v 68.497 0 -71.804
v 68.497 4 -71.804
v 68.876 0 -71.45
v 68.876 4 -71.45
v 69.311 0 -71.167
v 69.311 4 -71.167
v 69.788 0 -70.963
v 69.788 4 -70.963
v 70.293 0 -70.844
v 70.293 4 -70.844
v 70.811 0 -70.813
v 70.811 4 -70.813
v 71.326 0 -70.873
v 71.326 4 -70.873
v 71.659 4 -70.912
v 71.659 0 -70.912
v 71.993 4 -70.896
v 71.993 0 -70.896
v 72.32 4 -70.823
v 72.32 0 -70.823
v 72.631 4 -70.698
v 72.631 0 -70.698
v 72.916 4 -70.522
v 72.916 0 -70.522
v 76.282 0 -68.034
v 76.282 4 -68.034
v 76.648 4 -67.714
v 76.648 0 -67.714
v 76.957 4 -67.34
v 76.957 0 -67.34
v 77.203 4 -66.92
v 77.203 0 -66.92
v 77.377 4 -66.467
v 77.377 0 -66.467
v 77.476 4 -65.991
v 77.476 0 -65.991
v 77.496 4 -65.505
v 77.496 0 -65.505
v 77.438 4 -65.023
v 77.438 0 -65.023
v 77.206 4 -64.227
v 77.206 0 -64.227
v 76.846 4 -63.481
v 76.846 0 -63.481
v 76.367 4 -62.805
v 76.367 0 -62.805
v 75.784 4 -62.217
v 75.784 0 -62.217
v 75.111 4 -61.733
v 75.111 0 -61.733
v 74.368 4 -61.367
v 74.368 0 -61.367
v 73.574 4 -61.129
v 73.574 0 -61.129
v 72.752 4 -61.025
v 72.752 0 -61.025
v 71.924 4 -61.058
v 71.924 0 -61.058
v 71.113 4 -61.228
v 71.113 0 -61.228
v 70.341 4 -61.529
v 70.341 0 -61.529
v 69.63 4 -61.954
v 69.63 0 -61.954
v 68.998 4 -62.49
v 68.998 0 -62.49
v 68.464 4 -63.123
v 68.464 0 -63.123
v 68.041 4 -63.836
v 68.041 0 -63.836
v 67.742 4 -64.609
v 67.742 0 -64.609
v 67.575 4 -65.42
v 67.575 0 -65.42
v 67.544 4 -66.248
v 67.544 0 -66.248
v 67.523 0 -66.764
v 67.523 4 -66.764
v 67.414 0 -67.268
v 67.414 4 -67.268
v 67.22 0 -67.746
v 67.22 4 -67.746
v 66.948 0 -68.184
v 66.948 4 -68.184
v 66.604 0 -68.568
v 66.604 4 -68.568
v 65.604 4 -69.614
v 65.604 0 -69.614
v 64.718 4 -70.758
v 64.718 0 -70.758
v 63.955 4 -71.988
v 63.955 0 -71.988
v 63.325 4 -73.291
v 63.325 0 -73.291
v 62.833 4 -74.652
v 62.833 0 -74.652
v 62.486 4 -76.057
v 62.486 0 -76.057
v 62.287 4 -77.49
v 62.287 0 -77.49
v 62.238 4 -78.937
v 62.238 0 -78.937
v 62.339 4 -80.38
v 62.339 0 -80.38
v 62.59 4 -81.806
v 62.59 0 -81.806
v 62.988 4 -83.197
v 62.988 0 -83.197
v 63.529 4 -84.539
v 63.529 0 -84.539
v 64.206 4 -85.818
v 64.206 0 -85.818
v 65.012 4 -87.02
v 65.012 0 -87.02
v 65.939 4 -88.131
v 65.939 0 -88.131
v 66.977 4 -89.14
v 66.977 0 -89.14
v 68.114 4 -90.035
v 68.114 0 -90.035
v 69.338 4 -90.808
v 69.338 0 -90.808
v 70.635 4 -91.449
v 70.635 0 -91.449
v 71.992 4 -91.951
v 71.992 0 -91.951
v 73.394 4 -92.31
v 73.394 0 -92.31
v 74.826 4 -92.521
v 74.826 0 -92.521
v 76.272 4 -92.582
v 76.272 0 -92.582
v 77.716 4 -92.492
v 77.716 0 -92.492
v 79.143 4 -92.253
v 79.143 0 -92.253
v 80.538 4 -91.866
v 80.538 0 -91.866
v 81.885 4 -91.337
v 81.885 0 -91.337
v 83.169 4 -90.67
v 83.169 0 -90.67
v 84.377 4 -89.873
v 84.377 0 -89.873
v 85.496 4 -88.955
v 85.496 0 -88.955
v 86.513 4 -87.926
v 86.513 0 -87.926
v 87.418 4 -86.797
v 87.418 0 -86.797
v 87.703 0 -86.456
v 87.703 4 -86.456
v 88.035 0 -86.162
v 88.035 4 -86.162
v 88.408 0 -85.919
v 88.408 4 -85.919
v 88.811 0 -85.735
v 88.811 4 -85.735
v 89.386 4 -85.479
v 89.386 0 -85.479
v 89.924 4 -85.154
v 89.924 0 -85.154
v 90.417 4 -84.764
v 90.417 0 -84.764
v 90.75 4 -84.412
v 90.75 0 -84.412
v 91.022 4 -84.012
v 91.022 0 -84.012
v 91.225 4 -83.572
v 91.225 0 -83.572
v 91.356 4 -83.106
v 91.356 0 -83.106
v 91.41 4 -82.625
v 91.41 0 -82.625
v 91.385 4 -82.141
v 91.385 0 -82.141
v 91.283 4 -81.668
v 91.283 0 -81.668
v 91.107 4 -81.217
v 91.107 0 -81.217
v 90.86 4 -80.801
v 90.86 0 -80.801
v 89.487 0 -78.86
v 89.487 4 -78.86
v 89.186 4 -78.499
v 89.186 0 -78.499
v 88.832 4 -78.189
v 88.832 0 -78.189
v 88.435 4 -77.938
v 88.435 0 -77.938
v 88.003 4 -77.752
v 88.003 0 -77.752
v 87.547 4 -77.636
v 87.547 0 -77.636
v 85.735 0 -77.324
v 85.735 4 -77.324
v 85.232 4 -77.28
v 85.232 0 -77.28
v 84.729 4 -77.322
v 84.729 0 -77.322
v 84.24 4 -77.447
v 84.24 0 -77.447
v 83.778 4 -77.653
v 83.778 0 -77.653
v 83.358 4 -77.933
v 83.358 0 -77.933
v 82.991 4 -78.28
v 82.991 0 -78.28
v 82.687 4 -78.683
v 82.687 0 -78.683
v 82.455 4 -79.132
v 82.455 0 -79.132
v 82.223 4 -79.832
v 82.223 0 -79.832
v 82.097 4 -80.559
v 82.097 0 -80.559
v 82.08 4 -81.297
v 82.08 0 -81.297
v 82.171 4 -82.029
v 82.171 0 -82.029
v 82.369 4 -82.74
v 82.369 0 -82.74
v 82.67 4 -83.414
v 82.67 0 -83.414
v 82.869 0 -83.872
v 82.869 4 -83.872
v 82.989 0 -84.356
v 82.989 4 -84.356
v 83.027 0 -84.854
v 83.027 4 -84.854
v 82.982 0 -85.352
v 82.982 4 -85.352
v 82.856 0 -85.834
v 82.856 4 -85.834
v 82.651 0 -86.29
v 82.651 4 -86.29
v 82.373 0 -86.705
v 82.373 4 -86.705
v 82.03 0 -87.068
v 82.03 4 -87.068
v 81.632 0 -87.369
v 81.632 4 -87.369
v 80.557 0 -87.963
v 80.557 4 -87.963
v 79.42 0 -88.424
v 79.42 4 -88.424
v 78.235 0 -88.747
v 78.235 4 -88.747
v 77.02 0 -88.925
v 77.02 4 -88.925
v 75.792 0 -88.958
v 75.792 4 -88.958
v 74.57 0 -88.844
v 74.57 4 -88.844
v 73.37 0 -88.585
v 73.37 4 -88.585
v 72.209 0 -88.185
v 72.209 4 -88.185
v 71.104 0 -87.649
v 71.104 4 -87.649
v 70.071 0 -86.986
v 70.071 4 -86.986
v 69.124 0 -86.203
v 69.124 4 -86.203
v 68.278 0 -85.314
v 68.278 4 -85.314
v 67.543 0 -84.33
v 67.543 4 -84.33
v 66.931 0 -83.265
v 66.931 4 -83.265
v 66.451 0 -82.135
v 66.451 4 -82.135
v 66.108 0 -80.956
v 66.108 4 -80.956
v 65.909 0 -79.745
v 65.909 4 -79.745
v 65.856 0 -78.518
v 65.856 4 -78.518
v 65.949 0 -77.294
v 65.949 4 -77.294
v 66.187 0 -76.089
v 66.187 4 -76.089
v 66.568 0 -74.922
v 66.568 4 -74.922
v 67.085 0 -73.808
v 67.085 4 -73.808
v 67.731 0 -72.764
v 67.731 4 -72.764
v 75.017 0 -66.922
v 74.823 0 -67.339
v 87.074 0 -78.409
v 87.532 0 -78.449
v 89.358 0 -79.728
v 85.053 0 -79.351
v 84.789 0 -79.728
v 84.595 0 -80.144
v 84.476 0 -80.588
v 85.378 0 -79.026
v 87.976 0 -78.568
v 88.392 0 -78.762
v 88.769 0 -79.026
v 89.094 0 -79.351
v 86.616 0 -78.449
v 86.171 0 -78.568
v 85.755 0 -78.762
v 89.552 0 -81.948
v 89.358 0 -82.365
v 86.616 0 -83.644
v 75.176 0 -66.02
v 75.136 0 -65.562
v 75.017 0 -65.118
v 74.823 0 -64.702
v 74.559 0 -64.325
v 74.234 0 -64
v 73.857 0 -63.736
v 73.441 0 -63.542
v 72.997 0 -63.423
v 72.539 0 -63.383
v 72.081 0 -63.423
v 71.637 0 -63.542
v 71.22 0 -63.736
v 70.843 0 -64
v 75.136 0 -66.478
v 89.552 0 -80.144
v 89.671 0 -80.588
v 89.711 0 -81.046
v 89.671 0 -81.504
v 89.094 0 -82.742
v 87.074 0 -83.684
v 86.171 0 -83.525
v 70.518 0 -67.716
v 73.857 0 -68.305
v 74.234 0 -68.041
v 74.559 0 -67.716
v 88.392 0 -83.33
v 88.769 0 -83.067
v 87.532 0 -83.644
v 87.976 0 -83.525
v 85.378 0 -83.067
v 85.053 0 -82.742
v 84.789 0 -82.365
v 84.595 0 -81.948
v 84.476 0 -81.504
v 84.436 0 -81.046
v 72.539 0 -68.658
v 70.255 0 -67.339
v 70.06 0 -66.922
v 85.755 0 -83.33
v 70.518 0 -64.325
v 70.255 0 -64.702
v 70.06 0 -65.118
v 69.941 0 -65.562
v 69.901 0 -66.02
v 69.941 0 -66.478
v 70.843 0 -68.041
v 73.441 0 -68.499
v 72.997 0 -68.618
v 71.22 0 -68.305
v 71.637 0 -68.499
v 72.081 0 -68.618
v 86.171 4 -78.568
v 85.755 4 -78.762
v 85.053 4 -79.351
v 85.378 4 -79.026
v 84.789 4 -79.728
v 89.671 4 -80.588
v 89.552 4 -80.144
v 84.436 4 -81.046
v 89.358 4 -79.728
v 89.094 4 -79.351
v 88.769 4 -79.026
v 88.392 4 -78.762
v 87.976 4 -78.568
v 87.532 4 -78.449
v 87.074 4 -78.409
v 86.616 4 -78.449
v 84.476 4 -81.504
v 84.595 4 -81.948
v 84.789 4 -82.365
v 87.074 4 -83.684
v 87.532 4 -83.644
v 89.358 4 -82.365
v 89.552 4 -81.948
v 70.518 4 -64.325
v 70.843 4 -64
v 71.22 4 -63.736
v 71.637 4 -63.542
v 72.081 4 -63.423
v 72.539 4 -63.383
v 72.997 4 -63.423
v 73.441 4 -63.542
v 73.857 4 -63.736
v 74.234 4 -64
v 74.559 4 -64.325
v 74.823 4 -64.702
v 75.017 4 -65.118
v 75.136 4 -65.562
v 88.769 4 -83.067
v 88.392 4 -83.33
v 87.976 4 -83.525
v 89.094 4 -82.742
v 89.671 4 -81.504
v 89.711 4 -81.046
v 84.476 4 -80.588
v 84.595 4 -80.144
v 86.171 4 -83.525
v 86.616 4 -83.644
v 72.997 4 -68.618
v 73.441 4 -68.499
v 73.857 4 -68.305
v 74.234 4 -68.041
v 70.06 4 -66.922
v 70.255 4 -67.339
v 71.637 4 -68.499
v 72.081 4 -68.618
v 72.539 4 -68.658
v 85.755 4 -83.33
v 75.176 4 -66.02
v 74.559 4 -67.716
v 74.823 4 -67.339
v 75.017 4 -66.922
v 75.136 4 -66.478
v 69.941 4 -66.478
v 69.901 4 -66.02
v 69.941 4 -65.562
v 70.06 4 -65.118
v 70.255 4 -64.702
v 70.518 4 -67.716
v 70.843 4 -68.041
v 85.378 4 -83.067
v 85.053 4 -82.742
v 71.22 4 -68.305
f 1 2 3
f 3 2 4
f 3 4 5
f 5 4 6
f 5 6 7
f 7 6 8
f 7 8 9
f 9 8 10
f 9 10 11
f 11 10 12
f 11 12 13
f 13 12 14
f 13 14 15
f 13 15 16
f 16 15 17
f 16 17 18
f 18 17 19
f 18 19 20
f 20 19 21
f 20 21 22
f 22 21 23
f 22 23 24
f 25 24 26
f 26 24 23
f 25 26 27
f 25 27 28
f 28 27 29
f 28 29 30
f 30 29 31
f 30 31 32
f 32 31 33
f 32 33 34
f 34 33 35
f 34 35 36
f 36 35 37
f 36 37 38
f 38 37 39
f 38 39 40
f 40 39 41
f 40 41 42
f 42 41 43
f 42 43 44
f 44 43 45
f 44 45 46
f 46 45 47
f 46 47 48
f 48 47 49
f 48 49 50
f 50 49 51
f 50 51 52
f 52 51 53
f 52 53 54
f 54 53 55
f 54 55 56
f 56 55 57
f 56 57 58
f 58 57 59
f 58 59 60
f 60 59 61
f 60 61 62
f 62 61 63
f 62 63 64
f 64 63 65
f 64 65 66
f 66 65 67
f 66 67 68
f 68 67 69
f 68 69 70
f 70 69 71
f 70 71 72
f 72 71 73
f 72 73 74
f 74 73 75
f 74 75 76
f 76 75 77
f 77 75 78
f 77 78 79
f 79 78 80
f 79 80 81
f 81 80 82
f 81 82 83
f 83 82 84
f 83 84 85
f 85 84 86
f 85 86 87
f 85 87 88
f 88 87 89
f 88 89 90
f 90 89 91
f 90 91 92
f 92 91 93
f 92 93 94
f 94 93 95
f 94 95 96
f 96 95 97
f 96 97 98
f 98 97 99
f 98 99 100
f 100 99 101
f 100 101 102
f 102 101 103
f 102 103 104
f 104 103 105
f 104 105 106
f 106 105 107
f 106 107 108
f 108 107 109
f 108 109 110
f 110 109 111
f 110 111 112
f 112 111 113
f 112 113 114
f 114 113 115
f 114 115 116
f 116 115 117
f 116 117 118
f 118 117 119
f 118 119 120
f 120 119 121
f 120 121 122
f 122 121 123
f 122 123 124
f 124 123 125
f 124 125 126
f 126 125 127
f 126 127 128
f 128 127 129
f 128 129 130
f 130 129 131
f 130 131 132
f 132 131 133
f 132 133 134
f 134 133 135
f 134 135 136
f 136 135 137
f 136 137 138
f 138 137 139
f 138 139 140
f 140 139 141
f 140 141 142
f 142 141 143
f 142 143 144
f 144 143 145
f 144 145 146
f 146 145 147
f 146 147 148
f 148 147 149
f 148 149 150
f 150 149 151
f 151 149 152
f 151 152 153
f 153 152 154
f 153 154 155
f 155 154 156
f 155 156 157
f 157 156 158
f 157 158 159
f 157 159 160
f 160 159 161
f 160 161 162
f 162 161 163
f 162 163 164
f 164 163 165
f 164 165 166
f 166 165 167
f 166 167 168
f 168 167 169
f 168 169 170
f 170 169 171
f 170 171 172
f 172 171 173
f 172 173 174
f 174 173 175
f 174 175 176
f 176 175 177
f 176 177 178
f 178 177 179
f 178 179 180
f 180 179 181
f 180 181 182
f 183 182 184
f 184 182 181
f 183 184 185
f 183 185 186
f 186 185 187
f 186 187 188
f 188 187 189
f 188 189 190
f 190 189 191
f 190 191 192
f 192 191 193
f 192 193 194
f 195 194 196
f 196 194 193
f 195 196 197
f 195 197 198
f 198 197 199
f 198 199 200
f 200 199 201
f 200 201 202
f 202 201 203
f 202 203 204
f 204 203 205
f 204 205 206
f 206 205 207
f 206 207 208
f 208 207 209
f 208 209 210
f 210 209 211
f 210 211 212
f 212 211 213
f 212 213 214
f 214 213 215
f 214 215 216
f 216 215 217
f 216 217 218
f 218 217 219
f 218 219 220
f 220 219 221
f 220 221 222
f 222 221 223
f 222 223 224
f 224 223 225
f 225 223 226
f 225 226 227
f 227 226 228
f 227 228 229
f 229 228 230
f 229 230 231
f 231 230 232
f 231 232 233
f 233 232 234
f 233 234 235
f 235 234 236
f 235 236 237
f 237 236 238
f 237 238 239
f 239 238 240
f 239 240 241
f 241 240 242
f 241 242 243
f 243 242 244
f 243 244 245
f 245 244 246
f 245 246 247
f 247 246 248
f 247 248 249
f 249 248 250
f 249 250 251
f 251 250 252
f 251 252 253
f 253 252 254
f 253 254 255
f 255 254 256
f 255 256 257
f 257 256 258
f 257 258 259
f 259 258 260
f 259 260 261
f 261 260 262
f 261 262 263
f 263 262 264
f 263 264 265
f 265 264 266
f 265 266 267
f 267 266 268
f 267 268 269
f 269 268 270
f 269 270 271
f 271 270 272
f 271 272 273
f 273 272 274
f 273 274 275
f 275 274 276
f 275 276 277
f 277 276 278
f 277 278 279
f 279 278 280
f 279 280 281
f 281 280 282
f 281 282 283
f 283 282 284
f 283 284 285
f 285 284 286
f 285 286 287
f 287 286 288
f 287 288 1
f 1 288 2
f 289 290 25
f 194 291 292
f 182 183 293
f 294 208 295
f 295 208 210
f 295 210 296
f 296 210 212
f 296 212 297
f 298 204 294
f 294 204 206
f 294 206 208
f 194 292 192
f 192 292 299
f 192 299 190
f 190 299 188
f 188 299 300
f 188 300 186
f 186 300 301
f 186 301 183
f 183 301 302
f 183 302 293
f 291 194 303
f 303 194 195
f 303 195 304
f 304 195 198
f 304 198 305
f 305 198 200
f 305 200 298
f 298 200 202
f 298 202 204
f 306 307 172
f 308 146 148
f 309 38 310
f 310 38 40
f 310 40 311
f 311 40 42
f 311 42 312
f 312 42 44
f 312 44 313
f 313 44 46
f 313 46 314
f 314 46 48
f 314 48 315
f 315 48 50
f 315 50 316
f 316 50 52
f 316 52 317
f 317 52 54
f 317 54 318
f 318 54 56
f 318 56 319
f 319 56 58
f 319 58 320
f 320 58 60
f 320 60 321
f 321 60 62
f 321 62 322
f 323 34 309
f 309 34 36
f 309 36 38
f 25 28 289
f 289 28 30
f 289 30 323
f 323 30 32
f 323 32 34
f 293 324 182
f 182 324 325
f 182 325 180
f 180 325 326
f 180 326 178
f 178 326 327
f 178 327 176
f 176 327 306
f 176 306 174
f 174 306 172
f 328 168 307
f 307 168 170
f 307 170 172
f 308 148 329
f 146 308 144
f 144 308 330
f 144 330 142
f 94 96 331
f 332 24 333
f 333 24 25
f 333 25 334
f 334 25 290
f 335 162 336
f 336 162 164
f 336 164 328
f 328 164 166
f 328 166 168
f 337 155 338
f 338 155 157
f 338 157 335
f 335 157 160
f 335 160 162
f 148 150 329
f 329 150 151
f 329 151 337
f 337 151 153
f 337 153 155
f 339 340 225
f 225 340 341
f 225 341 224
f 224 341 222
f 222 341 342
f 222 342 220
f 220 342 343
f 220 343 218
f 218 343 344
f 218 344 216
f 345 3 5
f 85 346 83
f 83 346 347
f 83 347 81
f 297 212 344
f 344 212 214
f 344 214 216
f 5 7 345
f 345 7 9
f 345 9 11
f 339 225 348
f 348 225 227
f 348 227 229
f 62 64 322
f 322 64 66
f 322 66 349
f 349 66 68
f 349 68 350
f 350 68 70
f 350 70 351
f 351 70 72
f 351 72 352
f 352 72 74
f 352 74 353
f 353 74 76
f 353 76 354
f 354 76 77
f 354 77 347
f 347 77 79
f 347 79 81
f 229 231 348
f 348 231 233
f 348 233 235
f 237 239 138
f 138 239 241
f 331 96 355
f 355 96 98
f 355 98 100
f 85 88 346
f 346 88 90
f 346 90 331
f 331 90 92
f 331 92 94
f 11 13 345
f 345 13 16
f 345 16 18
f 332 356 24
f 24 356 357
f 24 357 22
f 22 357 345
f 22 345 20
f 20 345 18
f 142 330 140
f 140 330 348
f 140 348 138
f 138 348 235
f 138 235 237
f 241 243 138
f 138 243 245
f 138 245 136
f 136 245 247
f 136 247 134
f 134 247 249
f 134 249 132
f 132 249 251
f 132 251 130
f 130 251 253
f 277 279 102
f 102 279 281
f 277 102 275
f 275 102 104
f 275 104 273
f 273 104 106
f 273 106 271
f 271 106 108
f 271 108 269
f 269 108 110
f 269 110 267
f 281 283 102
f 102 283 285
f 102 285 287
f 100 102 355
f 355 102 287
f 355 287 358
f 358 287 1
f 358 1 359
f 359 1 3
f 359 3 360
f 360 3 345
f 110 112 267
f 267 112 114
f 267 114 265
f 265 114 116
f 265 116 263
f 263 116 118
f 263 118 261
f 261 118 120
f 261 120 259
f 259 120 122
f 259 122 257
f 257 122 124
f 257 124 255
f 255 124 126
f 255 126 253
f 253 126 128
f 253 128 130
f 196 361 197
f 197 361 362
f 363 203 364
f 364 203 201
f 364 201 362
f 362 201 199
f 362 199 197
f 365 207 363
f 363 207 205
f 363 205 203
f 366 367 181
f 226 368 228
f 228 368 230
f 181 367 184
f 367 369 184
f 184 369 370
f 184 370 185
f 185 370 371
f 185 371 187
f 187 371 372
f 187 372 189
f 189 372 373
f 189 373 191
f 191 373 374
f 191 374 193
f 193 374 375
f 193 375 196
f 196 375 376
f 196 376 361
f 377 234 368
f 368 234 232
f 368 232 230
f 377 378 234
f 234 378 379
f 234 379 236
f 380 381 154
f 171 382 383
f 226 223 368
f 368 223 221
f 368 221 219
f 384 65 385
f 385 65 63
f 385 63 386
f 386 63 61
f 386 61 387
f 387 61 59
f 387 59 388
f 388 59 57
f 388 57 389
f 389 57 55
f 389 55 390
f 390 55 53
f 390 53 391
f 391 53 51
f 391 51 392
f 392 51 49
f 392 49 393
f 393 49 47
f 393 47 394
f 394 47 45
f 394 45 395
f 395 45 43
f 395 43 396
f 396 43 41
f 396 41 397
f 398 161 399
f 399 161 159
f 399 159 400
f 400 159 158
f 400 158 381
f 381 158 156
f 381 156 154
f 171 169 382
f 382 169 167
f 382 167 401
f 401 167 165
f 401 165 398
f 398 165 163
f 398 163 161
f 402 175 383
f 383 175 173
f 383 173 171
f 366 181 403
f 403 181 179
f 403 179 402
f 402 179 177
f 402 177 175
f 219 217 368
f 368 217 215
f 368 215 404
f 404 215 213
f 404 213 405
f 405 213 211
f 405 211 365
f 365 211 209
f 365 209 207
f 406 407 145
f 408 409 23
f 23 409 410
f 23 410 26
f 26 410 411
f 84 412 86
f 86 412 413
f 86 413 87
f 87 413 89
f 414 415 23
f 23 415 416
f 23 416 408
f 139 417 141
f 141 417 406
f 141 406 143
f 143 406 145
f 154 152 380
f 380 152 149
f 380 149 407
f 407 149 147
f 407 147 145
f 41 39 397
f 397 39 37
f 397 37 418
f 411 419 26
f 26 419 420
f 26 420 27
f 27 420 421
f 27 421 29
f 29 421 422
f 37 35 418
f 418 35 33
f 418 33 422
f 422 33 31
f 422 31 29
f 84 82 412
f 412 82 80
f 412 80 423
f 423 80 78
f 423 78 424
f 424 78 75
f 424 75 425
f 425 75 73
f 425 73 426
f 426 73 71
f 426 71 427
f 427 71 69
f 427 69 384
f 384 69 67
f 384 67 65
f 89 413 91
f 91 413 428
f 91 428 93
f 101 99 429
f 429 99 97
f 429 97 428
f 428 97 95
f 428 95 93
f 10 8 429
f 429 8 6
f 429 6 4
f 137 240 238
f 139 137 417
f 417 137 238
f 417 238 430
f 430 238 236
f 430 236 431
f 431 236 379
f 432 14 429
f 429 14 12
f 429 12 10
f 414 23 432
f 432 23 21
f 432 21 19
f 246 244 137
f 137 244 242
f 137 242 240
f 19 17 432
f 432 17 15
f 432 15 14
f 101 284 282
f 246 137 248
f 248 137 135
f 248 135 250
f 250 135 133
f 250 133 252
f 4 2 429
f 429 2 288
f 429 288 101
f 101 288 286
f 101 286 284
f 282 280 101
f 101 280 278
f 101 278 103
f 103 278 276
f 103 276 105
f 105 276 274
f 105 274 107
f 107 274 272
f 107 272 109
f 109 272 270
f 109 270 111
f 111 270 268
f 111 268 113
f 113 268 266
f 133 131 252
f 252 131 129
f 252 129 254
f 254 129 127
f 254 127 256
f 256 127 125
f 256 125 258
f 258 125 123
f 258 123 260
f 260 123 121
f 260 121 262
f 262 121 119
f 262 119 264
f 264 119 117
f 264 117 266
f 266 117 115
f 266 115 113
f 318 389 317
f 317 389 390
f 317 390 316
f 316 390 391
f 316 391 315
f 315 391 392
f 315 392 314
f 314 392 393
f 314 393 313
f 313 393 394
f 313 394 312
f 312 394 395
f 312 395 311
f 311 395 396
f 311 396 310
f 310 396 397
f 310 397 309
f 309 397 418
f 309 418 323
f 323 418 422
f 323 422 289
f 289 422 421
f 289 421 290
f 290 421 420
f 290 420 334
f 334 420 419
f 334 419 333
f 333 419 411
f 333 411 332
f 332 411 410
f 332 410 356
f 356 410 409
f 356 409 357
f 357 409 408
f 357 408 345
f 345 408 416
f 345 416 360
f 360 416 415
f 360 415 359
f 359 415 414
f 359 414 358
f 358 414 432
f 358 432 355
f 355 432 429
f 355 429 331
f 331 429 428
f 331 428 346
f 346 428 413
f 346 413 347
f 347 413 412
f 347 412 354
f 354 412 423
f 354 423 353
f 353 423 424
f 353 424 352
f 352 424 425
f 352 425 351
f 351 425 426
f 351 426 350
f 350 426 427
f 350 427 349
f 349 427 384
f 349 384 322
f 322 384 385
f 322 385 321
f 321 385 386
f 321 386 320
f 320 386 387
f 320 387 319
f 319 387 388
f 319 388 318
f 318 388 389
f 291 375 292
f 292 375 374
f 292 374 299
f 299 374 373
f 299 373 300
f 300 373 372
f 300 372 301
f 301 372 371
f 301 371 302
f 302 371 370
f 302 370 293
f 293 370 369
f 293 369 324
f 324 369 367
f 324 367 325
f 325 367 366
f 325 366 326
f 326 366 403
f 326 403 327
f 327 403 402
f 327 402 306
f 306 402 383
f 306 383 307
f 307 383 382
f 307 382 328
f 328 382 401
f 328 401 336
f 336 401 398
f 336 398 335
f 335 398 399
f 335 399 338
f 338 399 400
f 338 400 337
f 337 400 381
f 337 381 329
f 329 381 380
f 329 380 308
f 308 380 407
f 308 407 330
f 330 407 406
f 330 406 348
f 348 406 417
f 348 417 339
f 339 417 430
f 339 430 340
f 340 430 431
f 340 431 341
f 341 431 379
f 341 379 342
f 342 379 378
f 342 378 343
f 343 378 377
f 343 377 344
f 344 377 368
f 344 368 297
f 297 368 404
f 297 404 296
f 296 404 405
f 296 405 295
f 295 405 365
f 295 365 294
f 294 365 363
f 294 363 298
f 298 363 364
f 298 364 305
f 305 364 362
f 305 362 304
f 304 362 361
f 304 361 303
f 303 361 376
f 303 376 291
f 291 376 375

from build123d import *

# Parameters (mm, degrees)
SKETCH1_R           = 2.6375
BOSS_EXTRUDE1_DEPTH = 4


with BuildPart() as part:
    # Sketch1 → Boss-Extrude1 (new body)
    with BuildSketch(Plane(origin=(0, 4, 0), x_dir=(1, 0, 0), z_dir=(0, 1, 0))):
        with BuildLine():
            Line((85.735483712, 77.323980784), (87.547228424, 77.6361992))
            ThreePointArc((87.547228424, 77.6361992), (88.638512401, 78.055387782), (89.486725608, 78.859846695))
            Line((89.486725608, 78.859846695), (90.859907816, 80.800603382))
            ThreePointArc((90.859907816, 80.800603382), (91.392372444, 82.866543385), (90.417013283, 84.763989347))
            ThreePointArc((90.417013283, 84.763989347), (89.660091993, 85.325292733), (88.8112973, 85.73460789))
            ThreePointArc((88.8112973, 85.73460789), (88.035402119, 86.161615284), (87.417993221, 86.796560083))
            ThreePointArc((87.417993221, 86.796560083), (66.977031359, 89.139944323), (66.603972706, 68.568478678))
            ThreePointArc((66.603972706, 68.568478678), (67.327519051, 67.51101449), (67.543844855, 66.248100016))
            ThreePointArc((67.543844855, 66.248100016), (71.92413831, 61.058265048), (77.438126505, 65.022769043))
            ThreePointArc((77.438126505, 65.022769043), (77.298986696, 66.69694337), (76.281652818, 68.033824571))
            Line((76.281652818, 68.033824571), (72.915652336, 70.521815026))
            ThreePointArc((72.915652336, 70.521815026), (72.158360379, 70.866374525), (71.326393596, 70.872979652))
            ThreePointArc((71.326393596, 70.872979652), (69.787994238, 70.962547772), (68.497017033, 71.804018441))
            ThreePointArc((68.497017033, 71.804018441), (68.277664092, 85.314017723), (81.632240885, 87.369127207))
            ThreePointArc((81.632240885, 87.369127207), (82.929152896, 85.595651679), (82.669646853, 83.413942984))
            ThreePointArc((82.669646853, 83.413942984), (82.079827473, 81.296958117), (82.454695982, 79.131551589))
            ThreePointArc((82.454695982, 79.131551589), (83.778317702, 77.652816556), (85.735483712, 77.323980784))
        make_face()
        with Locations((72.538655529, 66.020358214)):
            Circle(SKETCH1_R, mode=Mode.SUBTRACT)
        with Locations((87.073540725, 81.04630307)):
            Circle(SKETCH1_R, mode=Mode.SUBTRACT)
    extrude(amount=-BOSS_EXTRUDE1_DEPTH)


solid = part.part
